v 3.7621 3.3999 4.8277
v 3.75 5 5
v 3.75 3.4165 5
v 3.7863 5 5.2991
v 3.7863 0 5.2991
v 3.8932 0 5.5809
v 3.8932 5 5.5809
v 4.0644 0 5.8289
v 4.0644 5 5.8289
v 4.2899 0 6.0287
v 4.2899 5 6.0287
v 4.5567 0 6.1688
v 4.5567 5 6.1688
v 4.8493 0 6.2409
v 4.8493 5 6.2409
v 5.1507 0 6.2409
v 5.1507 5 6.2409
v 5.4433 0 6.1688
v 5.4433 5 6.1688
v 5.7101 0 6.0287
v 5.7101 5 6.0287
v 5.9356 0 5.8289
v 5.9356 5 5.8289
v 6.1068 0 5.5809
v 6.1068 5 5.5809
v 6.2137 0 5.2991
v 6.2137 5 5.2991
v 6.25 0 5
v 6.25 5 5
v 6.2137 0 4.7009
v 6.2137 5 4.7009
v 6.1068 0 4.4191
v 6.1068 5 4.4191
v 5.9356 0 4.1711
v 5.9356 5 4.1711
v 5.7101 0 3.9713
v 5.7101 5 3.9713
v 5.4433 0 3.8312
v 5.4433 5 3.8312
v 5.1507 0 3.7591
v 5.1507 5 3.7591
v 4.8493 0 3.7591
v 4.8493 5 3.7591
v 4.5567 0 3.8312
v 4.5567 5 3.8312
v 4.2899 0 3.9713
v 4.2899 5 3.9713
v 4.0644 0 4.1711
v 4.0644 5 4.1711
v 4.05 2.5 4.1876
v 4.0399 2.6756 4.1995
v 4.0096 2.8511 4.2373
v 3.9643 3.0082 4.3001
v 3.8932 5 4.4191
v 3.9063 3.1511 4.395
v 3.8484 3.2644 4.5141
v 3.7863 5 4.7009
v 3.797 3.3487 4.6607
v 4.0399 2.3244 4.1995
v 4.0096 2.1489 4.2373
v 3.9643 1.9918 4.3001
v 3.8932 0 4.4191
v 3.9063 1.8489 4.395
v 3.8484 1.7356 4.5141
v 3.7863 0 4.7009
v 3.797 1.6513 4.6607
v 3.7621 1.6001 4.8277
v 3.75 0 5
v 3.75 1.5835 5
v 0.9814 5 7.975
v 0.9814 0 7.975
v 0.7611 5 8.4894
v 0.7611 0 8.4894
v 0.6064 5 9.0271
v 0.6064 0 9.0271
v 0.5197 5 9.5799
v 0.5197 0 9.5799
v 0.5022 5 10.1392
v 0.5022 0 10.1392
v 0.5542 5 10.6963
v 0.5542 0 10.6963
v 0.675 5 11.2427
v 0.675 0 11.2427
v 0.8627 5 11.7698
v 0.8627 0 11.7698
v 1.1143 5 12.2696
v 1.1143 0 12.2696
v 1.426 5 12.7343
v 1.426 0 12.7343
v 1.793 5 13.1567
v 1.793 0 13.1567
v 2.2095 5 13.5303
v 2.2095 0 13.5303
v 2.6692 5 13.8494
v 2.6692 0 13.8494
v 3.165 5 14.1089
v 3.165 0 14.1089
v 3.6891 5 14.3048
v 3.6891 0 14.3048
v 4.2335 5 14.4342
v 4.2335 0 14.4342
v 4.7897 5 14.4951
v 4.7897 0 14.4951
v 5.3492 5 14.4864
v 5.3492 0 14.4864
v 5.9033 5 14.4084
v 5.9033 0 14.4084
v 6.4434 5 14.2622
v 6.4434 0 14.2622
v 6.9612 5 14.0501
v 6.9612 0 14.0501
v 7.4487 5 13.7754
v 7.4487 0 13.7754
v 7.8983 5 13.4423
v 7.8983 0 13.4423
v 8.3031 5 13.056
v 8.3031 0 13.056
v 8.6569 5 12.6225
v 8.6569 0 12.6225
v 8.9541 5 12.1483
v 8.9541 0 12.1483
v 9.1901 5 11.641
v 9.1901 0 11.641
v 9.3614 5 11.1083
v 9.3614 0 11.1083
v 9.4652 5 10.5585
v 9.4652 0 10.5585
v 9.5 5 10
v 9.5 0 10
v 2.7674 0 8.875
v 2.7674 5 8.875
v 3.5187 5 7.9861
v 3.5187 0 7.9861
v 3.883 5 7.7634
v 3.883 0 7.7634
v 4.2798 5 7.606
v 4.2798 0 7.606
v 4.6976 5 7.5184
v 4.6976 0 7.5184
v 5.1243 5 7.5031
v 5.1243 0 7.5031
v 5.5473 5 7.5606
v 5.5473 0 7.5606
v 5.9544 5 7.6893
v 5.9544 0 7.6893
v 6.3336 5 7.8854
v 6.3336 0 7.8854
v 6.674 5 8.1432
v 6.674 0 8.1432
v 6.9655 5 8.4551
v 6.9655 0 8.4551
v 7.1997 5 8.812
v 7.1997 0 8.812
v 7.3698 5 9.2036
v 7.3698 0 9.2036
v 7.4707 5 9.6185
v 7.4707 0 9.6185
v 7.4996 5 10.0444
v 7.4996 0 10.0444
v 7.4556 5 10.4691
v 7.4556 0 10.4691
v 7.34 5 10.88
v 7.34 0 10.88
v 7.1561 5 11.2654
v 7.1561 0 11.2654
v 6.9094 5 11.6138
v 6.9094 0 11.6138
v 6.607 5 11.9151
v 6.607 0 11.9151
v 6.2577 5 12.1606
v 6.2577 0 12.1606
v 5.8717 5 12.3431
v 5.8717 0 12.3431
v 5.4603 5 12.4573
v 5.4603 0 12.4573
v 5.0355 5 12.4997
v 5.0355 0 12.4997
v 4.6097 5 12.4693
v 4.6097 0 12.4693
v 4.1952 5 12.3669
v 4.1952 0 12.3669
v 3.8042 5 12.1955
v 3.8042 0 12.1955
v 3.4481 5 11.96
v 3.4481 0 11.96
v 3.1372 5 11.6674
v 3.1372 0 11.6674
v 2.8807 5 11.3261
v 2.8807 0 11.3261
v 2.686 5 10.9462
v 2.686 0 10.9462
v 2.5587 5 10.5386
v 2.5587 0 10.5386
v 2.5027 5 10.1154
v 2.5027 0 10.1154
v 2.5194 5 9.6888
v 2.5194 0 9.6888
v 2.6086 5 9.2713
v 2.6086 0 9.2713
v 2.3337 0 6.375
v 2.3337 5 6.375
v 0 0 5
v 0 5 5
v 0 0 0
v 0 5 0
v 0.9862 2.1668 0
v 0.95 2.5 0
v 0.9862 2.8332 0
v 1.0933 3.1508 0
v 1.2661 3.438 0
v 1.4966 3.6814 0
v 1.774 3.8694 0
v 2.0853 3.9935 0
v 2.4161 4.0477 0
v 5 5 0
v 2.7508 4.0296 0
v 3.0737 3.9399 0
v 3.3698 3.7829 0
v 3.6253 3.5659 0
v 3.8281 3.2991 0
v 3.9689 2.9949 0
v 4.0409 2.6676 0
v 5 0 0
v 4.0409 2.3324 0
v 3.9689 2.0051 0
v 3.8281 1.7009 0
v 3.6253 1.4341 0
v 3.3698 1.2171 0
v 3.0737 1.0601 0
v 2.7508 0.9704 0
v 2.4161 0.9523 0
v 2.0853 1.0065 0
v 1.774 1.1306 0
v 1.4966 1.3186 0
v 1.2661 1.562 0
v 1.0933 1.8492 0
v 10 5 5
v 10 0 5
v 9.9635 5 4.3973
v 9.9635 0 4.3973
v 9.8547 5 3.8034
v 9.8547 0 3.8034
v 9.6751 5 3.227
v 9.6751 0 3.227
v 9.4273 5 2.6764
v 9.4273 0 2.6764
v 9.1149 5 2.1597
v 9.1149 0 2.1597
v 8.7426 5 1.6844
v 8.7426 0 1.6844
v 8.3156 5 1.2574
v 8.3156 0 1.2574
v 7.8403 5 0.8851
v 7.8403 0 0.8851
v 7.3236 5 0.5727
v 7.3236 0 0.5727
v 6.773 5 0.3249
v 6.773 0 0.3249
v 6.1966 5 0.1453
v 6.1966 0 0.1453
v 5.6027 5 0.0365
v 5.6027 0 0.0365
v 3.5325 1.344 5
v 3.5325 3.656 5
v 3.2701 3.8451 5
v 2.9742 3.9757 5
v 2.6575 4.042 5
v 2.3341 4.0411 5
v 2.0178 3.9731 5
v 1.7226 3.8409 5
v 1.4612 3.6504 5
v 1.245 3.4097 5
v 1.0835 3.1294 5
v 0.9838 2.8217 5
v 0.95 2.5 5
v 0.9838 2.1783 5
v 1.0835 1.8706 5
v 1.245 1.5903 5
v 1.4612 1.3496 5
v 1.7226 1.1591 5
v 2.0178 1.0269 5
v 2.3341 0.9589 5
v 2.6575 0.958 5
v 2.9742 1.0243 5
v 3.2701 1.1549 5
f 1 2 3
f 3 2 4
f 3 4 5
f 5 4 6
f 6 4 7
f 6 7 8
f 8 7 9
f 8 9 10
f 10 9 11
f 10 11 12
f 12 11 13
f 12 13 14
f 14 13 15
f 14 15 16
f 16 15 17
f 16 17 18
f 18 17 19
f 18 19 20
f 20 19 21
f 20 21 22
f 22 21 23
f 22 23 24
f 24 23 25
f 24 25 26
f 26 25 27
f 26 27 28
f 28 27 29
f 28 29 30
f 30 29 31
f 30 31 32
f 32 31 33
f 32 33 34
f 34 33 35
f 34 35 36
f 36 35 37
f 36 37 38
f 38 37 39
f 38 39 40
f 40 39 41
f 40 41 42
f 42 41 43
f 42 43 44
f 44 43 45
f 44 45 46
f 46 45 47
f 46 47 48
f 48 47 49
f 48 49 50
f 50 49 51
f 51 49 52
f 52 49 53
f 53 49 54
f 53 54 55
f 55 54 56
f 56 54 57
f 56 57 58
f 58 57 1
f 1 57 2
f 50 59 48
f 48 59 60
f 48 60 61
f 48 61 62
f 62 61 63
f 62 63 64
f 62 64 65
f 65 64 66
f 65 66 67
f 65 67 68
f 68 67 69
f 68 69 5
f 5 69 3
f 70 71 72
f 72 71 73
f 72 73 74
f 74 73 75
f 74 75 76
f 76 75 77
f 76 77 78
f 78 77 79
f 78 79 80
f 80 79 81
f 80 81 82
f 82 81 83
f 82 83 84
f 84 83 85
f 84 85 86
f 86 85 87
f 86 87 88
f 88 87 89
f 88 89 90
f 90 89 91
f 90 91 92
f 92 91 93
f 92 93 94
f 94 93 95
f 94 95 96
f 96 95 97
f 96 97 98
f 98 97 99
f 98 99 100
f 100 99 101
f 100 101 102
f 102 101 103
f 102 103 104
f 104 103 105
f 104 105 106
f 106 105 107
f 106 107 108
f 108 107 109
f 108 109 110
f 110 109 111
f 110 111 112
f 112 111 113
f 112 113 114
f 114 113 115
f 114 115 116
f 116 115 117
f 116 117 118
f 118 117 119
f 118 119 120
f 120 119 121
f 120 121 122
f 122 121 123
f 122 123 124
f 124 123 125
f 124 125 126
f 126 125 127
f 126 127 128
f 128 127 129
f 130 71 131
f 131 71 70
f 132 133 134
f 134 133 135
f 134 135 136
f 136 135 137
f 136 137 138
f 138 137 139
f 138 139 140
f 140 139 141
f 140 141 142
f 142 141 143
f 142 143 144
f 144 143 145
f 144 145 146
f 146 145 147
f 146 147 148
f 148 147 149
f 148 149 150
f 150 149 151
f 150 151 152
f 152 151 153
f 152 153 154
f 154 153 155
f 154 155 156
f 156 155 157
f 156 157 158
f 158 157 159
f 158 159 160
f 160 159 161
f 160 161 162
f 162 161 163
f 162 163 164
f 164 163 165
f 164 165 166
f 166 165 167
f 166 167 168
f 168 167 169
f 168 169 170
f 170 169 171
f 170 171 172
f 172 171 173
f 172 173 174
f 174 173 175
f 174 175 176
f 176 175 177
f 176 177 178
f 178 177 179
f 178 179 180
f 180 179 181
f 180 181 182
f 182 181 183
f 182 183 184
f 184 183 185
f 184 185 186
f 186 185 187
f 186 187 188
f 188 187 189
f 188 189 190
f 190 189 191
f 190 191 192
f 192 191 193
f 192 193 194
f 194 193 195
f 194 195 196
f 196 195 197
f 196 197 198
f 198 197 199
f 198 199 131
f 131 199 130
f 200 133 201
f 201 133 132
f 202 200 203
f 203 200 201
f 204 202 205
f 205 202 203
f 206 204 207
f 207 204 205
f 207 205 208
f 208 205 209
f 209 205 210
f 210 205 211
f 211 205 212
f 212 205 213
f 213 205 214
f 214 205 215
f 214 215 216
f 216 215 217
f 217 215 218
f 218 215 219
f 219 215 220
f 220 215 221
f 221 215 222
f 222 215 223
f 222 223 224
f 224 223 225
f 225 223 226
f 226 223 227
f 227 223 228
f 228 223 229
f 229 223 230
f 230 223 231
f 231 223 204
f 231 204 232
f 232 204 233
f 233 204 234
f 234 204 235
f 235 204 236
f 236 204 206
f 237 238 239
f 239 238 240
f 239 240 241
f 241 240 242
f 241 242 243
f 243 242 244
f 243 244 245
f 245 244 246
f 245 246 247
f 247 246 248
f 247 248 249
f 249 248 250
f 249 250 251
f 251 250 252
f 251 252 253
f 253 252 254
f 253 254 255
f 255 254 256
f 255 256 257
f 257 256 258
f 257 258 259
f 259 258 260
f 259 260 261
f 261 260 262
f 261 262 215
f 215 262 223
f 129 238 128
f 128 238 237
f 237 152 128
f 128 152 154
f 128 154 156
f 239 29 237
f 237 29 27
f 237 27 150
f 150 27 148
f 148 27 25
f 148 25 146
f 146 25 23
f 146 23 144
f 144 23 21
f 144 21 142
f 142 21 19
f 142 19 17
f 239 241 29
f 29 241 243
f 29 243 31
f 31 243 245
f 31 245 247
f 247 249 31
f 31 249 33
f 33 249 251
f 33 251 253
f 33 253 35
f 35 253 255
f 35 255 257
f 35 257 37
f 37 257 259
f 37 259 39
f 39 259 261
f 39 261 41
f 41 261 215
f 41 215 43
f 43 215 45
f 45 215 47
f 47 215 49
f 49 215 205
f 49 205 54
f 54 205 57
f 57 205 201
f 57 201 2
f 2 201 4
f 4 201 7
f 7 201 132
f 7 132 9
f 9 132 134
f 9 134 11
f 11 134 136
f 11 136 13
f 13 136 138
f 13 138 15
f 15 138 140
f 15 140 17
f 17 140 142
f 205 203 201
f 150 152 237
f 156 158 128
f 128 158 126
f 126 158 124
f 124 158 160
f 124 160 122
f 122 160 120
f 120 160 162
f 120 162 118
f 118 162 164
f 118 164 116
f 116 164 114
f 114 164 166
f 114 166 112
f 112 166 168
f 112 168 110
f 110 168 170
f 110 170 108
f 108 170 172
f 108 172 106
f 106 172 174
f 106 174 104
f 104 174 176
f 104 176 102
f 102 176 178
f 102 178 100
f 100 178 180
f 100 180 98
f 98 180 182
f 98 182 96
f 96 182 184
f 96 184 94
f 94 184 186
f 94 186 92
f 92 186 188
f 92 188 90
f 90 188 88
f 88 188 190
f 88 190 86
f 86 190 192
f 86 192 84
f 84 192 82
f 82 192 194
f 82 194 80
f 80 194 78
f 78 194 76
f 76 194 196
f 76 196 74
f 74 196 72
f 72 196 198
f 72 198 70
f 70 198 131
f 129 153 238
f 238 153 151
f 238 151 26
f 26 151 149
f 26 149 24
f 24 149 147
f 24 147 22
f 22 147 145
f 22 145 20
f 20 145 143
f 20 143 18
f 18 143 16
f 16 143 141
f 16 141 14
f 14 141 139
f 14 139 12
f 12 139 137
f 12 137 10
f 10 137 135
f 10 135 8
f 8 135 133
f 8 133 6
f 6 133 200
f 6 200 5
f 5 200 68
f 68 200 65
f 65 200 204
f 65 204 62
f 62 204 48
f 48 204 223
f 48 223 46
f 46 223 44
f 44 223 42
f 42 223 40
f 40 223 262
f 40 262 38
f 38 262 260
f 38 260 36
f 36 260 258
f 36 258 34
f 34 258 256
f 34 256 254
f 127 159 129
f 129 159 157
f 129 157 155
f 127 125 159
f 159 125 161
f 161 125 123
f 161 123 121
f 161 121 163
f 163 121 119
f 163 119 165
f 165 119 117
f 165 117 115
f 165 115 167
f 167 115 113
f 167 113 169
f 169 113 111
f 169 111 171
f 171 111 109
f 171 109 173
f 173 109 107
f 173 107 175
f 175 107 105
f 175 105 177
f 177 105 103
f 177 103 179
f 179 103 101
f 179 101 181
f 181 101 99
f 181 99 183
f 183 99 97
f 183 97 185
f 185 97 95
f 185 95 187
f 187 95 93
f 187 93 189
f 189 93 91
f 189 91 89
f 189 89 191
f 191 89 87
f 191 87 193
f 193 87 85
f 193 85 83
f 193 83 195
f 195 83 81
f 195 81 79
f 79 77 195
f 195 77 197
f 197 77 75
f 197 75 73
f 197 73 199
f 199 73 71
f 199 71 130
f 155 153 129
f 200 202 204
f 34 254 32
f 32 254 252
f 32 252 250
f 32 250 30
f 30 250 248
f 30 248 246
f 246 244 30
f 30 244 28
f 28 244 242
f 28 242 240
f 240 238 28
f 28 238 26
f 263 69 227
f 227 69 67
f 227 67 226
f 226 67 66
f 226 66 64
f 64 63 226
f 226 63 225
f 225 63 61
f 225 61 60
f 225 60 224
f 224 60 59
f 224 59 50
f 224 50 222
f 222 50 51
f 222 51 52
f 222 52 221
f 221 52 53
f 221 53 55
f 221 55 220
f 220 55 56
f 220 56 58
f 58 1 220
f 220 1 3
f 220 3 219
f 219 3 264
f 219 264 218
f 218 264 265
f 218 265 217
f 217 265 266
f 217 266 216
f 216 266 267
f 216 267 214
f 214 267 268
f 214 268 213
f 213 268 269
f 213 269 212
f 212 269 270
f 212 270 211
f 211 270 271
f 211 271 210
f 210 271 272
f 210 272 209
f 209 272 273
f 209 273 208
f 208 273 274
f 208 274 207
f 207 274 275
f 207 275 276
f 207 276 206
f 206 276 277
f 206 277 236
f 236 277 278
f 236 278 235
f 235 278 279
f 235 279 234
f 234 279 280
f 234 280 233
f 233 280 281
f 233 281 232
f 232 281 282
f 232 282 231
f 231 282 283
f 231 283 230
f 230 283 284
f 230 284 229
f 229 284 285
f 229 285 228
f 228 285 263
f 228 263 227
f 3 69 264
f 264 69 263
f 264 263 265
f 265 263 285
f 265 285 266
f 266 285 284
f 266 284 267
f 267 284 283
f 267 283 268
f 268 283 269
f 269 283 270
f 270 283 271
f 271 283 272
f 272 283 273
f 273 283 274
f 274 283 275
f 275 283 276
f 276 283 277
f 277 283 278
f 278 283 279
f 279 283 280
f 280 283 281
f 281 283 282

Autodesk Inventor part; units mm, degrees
ref_plane "YZ Plane" through (0, 0, 0) normal (1, 0, 0) x (0, 1, 0)
ref_plane "XZ Plane" through (0, 0, 0) normal (0, 1, 0) x (-1, 0, 0)
ref_plane "XY Plane" through (0, 0, 0) normal (0, 0, 1) x (1, 0, 0)
sketch "スケッチ1" plane through (0, 0, 0) normal (0, 1, 0) x (-1, 0, 0)
  line L0 (0, 0) -> (-5, 0)
  line L1 (-5, 0) -> (-5, 5)
  line L2 (-5, 5) -> (0, 5)
  line L3 (0, 5) -> (0, 0)
  circle A0 centre (-5, 5) radius 1.25
  line L4 (0, 0) -> (0, 15)
  circle A1 centre (-5, 5) radius 5
  circle A2 centre (-5, 5) radius 3
  line L5 (-8, 5) -> (-8, 0)
  line L6 (-8, 0) -> (-8, 15)
  line L7 (-8, 15) -> (0, 15)
  line L8 (-5, 5) -> (-5, 15)
  line L9 (-5, 10) -> (-8, 10)
  circle A3 centre (-5, 5) radius 2.25
  circle A4 centre (-5, 10) radius 2.5
  circle A5 centre (-5, 10) radius 4.5
  line L10 (-5, 10) -> (-0.9814, 7.975)
  line L11 (-5, 10) -> (-2.3337, 6.375)
  line L12 (-9.5, 10) -> (-10, 5)
  line L13 (-2.3337, 6.375) -> (-5, 10)
  line L14 (-5, 10) -> (-0.2269, 3.5108)
  line L15 (-0.2269, 3.5108) -> (-5, 0)
  line L16 (-2.3337, 6.375) -> (0, 5)
  point P0 (-3.5187, 7.9861)
  point P1 (-2.7674, 8.875)
  dimension "d0" = 5
  dimension "d1" = 5
  dimension "d2" = 2.5
  dimension "d3" = 15
  dimension "d4" = 6
  dimension "d5" = 4.5
  dimension "d8" = 5
  dimension "d10" = 9
extrude "押し出し1" add sketch "スケッチ1" along normal blind 5 contours L0 A1 L3 | A1 L5 A2 L1 | L15 A1 | L1 A2 L2 L14 L15 | A1 L14 L2 | L2 L14 L16 | A2 A5 A3 L1 | L1 A3 L2 A2 | A1 L12 A5 L6 L5 | L2 A2 L14 | L10 A4 A1 | A1 A4 L8 A5 | A2 L2 A3 A5 | A5 A3 L8 A4 A2 L11 | A3 A5 A0 L1 | L1 A0 L2 A3 | L6 A5 A2 | A2 A4 L11 | A5 A0 L8 A3 | A3 L2 A0 A5 | A5 A2 A4 L8 A3 | A3 L8 A0 A5 | A5 L6 A1 A4 A2 | A5 A1 L6 | L12 A5 A1 | L8 A4 L9 L6 A5 | L6 L9 A4 A1 | A1 A5 L6 picked at (-1.7314, 8.4555)
sketch "スケッチ3" plane through (5, 0, 0) normal (0, 0, -1) x (-1, 0, 0)
  line L0 (5, 0) -> (5, 5) projected
  line L1 (5, 0) -> (2.5, 0)
  line L2 (2.5, 0) -> (2.5, 2.5)
  line L3 (2.5, 2.5) -> (5, 2.5)
  line L4 (5, 2.5) -> (5, 0)
  circle A0 centre (2.5, 2.5) radius 1.55
  dimension "d13" = 2.5
  dimension "d14" = 2.5
  dimension "d15" = 3.1
extrude "押し出し2" cut sketch "スケッチ3" against normal blind 5 contours A0 L2 L3 | L3 L2 A0
properties part number "rod_exp1.1"
